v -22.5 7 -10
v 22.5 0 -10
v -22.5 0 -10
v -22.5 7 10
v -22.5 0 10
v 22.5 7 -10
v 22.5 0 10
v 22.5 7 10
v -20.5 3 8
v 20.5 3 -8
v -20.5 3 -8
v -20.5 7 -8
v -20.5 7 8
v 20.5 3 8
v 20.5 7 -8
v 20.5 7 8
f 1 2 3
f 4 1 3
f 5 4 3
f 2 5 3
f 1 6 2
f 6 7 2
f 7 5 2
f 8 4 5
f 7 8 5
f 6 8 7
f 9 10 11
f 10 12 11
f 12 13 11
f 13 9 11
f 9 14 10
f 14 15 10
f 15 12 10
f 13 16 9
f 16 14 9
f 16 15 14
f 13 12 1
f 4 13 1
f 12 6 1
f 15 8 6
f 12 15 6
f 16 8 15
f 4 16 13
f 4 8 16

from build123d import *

# Parameters (mm, degrees)
SKETCH1_W           = 41
SKETCH1_H           = 16
BOSS_EXTRUDE1_DEPTH = 3
SKETCH2_W           = 45
SKETCH2_H           = 20
SKETCH2_W_2         = 41
SKETCH2_H_2         = 16
BOSS_EXTRUDE2_DEPTH = 7


with BuildPart() as part:
    # Sketch1 → Boss-Extrude1 (new body)
    with BuildSketch(Plane(origin=(0, 0, 0), x_dir=(1, 0, 0), z_dir=(0, 1, 0))):
        Rectangle(SKETCH1_W, SKETCH1_H)
    extrude(amount=BOSS_EXTRUDE1_DEPTH)

    # Sketch2 → Boss-Extrude2 (add)
    with BuildSketch(Plane.XZ):
        Rectangle(SKETCH2_W, SKETCH2_H)
        Rectangle(SKETCH2_W_2, SKETCH2_H_2, mode=Mode.SUBTRACT)
    extrude(amount=-BOSS_EXTRUDE2_DEPTH)


solid = part.part
